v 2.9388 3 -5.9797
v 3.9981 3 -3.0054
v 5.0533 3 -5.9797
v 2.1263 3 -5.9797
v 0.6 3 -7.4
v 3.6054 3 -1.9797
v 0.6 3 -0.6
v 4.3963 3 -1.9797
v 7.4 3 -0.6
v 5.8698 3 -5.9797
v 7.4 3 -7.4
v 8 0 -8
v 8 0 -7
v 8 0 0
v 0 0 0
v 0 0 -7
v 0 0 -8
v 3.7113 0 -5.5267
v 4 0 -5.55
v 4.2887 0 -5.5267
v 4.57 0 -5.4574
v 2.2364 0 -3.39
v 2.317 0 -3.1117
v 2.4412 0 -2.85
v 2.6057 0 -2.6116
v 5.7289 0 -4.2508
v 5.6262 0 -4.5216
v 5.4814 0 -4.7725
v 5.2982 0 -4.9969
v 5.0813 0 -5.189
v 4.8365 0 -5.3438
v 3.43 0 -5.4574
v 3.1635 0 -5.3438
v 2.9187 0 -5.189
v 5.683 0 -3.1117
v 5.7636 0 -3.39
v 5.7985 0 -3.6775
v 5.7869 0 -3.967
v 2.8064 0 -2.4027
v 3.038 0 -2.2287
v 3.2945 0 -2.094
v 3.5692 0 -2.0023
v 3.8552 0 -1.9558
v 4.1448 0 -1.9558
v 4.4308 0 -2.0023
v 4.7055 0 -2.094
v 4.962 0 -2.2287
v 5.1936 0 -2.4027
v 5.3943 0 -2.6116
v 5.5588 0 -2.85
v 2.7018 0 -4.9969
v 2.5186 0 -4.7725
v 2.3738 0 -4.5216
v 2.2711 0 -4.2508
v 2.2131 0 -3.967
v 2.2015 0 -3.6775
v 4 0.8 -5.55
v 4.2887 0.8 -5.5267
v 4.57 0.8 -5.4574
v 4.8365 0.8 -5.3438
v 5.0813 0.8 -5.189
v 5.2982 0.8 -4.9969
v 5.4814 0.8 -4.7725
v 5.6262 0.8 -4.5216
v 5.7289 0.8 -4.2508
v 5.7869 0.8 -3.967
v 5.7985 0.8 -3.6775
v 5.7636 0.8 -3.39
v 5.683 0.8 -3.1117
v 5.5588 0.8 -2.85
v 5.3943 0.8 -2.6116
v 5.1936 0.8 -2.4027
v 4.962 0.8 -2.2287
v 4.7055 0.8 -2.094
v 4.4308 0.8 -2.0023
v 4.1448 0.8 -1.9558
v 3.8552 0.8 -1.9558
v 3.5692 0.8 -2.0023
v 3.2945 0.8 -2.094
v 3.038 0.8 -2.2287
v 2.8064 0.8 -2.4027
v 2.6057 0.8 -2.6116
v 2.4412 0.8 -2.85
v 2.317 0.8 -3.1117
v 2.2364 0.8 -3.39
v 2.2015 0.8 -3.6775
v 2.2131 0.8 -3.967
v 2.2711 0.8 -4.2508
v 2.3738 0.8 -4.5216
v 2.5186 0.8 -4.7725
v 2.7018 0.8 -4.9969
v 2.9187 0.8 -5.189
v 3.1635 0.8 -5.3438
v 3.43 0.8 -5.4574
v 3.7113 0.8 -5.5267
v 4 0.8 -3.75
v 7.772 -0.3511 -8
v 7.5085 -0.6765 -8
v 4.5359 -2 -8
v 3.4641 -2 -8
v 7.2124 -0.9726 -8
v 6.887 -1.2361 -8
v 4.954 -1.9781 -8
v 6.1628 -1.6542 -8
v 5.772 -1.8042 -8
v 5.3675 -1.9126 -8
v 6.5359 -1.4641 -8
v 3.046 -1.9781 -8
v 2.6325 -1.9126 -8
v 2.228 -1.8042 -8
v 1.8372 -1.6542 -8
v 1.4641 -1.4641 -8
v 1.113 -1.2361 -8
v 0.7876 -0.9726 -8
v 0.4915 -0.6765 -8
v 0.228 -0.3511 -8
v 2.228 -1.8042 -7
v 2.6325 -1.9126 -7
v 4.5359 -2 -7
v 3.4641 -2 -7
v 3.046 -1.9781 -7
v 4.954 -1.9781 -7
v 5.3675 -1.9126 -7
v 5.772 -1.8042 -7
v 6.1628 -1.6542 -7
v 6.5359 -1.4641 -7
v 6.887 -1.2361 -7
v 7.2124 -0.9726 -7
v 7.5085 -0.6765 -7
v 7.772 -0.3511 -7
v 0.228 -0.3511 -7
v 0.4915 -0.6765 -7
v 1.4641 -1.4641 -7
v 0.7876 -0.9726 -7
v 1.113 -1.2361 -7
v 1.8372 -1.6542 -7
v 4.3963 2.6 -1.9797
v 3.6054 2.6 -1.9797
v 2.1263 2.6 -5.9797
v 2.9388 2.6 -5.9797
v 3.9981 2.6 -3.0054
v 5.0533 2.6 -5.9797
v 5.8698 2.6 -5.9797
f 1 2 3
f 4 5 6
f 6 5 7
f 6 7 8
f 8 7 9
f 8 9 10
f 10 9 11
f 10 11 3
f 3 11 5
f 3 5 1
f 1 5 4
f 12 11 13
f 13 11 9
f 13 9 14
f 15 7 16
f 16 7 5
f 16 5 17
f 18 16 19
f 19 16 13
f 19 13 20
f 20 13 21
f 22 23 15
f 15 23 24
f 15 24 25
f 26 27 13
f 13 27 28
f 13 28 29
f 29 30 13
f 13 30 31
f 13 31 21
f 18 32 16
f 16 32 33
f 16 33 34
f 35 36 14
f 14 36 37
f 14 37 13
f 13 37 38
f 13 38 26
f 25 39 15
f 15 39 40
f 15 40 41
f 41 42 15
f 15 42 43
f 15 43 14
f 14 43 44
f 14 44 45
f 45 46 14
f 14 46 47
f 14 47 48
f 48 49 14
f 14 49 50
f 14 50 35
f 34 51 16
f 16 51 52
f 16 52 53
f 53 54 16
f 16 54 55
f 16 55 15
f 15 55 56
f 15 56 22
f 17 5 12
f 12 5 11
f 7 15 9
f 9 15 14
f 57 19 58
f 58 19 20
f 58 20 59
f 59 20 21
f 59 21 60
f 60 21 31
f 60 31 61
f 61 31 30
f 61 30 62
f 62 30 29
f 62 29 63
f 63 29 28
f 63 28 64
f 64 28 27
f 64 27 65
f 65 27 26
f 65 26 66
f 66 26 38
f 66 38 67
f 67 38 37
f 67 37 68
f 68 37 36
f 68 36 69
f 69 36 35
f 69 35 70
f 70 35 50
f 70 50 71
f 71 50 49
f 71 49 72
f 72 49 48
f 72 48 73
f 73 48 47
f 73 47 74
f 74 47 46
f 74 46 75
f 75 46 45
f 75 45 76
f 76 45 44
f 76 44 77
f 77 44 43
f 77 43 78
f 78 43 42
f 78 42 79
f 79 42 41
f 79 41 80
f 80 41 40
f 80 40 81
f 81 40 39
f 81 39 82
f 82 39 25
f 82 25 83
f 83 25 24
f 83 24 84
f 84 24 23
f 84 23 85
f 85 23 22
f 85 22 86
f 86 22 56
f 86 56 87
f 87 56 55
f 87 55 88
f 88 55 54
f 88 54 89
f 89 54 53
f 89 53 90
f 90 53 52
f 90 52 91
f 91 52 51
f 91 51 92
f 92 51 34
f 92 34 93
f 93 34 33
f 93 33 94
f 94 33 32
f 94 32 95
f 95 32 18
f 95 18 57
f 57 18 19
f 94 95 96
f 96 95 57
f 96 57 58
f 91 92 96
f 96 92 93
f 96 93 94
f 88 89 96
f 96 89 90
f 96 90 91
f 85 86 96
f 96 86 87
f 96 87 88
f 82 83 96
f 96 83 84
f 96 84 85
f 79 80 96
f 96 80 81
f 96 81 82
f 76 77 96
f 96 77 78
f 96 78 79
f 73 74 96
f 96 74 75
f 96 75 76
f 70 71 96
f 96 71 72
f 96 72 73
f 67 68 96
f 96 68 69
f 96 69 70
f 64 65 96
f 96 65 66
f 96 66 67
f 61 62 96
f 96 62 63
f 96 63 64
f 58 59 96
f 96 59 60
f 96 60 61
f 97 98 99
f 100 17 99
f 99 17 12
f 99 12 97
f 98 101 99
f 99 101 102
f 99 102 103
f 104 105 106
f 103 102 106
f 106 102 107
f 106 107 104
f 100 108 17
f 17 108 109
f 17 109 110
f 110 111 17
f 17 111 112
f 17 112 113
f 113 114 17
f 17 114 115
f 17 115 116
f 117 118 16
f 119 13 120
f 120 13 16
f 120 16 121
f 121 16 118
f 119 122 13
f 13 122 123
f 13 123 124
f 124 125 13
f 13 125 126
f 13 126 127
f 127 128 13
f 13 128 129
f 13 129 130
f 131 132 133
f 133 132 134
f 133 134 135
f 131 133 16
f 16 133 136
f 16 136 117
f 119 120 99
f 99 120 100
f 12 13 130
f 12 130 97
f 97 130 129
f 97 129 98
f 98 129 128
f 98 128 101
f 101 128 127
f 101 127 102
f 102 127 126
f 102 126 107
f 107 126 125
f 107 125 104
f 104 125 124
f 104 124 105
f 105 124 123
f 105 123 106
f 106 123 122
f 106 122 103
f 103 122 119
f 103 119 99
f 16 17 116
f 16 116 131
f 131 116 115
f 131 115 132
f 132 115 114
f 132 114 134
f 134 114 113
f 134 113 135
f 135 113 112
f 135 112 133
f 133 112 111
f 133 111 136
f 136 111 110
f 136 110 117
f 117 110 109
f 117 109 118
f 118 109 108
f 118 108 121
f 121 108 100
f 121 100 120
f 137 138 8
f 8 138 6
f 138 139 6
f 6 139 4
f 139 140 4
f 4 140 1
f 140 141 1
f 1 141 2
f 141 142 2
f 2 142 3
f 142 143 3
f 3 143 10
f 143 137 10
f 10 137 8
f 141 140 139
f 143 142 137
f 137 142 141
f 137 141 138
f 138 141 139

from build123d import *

# Parameters (mm, degrees)
SKETCH1_W               = 8
SKETCH1_H               = 8
BOSS_EXTRUDE1_DEPTH     = 3
CUT_EXTRUDE1_DEPTH      = 12.704699911
CUT_EXTRUDE1_DEPTH_BACK = 12.704699911
CUT_EXTRUDE2_DEPTH      = 11
SKETCH4_R               = 1.8
CUT_EXTRUDE3_DEPTH      = 0.8
SKETCH5_W               = 8
SKETCH5_H               = 1
BOSS_EXTRUDE2_DEPTH     = 2
FILLET1_R               = 4
CUT_EXTRUDE4_DEPTH      = 0.4


with BuildPart() as part:
    # Sketch1 → Boss-Extrude1 (new body)
    with BuildSketch(Plane(origin=(0, 0, 0), x_dir=(1, 0, 0), z_dir=(0, 1, 0))):
        with Locations((4, 4)):
            Rectangle(SKETCH1_W, SKETCH1_H)
    extrude(amount=BOSS_EXTRUDE1_DEPTH)

    # Sketch2 → Cut-Extrude1 (cut, two sides: drawn at the far end of the back side and taken through both)
    with BuildSketch(Plane.XY.offset(-CUT_EXTRUDE1_DEPTH_BACK)):
        Polygon((0, 0), (0.6, 3), (0, 3), align=None)
        Polygon((8, 0), (7.4, 3), (8, 3), align=None)
    extrude(amount=CUT_EXTRUDE1_DEPTH + CUT_EXTRUDE1_DEPTH_BACK, mode=Mode.SUBTRACT)

    # Sketch3 → Cut-Extrude2 (cut)
    with BuildSketch(Plane(origin=(0, 0, 0), x_dir=(0, 0, -1), z_dir=(1, 0, 0))):
        Polygon((0, 0), (0.6, 3), (0, 3), align=None)
        Polygon((8, 3), (7.4, 3), (8, 0), align=None)
    extrude(amount=CUT_EXTRUDE2_DEPTH, mode=Mode.SUBTRACT)

    # Sketch4 → Cut-Extrude3 (cut)
    with BuildSketch(Plane.XZ):
        with Locations(Location((4, -3.75, 0), (0, 0, 270))):
            Circle(SKETCH4_R)
    extrude(amount=-CUT_EXTRUDE3_DEPTH, mode=Mode.SUBTRACT)

    # Sketch5 → Boss-Extrude2 (add)
    with BuildSketch(Plane.XZ):
        with Locations((4, -7.5)):
            Rectangle(SKETCH5_W, SKETCH5_H)
    extrude(amount=BOSS_EXTRUDE2_DEPTH)

    # Fillet1
    # the kernel refuses this fillet: 4 mm, written as the material it takes off along each edge
    with BuildSketch(Plane(origin=(8, -2, -16.660254038), x_dir=(0, 1, 0), z_dir=(0, 0, 1)), Plane(origin=(0, -2, 1.660254038), x_dir=(0, 1, 0), z_dir=(0, 0, -1))) as fillet1_piece_1:
        with BuildLine():
            CenterArc((4, 3.464101615), FILLET1_R, 180, 60)
            Line((0, 3.464101615), (-0.08, 3.464101615))
            Line((-0.08, 3.464101615), (-0.08, 0))
            Line((-0.08, 0), (0, -0.08))
            ThreePointArc((0, -0.08), (1, -0.08), (1.96, -0.069282032))
            Line((1.96, -0.069282032), (2, 0))
        make_face()
    extrude(amount=18.320508076, mode=Mode.SUBTRACT)

    # Sketch6 → Cut-Extrude4 (cut)
    with BuildSketch(Plane(origin=(0, 3, 0), x_dir=(1, 0, 0), z_dir=(0, 1, 0))):
        Polygon((3.605424489, 1.979723732), (2.126257822, 5.979723732), (2.938757822, 5.979723732), (3.998052694, 3.005364758), (5.053341155, 5.979723732), (5.869847566, 5.979723732), (4.396289873, 1.979723732), align=None)
    extrude(amount=-CUT_EXTRUDE4_DEPTH, mode=Mode.SUBTRACT)


solid = part.part
